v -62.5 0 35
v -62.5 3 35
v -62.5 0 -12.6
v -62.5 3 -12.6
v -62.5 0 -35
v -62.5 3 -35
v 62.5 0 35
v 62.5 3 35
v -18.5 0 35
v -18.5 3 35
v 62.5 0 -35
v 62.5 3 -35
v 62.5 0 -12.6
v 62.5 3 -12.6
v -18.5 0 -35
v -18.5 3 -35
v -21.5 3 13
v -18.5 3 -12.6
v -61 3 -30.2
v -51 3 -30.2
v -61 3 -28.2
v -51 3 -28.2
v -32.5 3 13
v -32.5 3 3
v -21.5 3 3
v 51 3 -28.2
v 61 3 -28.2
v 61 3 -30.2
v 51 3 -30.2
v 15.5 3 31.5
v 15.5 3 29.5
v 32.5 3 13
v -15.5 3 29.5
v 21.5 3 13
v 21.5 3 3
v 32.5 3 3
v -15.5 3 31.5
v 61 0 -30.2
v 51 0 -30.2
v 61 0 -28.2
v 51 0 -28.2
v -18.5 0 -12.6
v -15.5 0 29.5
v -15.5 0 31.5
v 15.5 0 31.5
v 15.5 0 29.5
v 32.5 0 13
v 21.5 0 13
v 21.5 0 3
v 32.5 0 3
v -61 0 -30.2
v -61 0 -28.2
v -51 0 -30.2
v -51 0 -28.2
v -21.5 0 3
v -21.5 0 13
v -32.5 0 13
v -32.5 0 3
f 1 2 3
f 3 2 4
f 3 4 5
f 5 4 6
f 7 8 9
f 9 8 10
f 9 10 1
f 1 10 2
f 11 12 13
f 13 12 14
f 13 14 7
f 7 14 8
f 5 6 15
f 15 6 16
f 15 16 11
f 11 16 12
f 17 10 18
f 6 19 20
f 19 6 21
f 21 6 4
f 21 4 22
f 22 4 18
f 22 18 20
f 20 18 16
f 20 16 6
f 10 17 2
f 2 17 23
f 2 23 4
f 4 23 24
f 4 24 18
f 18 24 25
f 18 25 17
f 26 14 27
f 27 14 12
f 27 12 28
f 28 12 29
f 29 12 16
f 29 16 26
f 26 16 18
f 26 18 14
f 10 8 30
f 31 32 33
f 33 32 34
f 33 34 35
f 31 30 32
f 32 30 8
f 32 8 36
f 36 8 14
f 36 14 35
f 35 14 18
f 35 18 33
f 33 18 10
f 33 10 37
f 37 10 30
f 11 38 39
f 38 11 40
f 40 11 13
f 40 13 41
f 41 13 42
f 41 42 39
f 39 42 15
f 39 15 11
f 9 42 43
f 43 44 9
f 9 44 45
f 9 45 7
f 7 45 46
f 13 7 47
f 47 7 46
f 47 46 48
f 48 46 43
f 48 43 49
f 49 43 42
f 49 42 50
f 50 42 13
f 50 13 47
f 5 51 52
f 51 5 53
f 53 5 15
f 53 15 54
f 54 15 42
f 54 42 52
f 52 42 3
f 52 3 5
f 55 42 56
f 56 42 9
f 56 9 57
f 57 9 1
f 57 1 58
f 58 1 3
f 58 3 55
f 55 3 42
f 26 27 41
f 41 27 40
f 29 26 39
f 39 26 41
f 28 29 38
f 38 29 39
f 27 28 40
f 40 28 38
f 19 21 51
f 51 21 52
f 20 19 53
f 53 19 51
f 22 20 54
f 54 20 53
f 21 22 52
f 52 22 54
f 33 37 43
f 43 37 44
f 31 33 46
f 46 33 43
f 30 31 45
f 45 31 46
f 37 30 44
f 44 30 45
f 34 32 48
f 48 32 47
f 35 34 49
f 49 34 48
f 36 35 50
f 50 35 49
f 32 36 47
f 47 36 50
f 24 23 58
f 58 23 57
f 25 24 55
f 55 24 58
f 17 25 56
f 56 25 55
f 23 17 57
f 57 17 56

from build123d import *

# Parameters (mm, degrees)
CROQUIS1_W              = 125
CROQUIS1_H              = 70
SALIENTE_EXTRUIR1_DEPTH = 3
CROQUIS2_W              = 10
CROQUIS2_H              = 2
CORTAR_EXTRUIR1_DEPTH   = 10
CROQUIS3_W              = 31
CROQUIS3_H              = 2
CORTAR_EXTRUIR2_DEPTH   = 10
CROQUIS4_W              = 11
CROQUIS4_H              = 10
CORTAR_EXTRUIR3_DEPTH   = 10


with BuildPart() as part:
    # Croquis1 → Saliente-Extruir1 (new body)
    with BuildSketch(Plane(origin=(0, 0, 0), x_dir=(1, 0, 0), z_dir=(0, 1, 0))):
        Rectangle(CROQUIS1_W, CROQUIS1_H)
    extrude(amount=SALIENTE_EXTRUIR1_DEPTH)

    # Croquis2 → Cortar-Extruir1 (cut)
    with BuildSketch(Plane(origin=(0, 3, 0), x_dir=(1, 0, 0), z_dir=(0, 1, 0))):
        with Locations((-56, 29.2)):
            Rectangle(CROQUIS2_W, CROQUIS2_H)
        with Locations((56, 29.2)):
            Rectangle(CROQUIS2_W, CROQUIS2_H)
    extrude(amount=-CORTAR_EXTRUIR1_DEPTH, mode=Mode.SUBTRACT)

    # Croquis3 → Cortar-Extruir2 (cut)
    with BuildSketch(Plane(origin=(0, 3, 0), x_dir=(1, 0, 0), z_dir=(0, 1, 0))):
        with Locations((0, -30.5)):
            Rectangle(CROQUIS3_W, CROQUIS3_H)
    extrude(amount=-CORTAR_EXTRUIR2_DEPTH, mode=Mode.SUBTRACT)

    # Croquis4 → Cortar-Extruir3 (cut)
    with BuildSketch(Plane(origin=(0, 3, 0), x_dir=(1, 0, 0), z_dir=(0, 1, 0))):
        with Locations((-27, -8)):
            Rectangle(CROQUIS4_W, CROQUIS4_H)
        with Locations((27, -8)):
            Rectangle(CROQUIS4_W, CROQUIS4_H)
    extrude(amount=-CORTAR_EXTRUIR3_DEPTH, mode=Mode.SUBTRACT)


solid = part.part
